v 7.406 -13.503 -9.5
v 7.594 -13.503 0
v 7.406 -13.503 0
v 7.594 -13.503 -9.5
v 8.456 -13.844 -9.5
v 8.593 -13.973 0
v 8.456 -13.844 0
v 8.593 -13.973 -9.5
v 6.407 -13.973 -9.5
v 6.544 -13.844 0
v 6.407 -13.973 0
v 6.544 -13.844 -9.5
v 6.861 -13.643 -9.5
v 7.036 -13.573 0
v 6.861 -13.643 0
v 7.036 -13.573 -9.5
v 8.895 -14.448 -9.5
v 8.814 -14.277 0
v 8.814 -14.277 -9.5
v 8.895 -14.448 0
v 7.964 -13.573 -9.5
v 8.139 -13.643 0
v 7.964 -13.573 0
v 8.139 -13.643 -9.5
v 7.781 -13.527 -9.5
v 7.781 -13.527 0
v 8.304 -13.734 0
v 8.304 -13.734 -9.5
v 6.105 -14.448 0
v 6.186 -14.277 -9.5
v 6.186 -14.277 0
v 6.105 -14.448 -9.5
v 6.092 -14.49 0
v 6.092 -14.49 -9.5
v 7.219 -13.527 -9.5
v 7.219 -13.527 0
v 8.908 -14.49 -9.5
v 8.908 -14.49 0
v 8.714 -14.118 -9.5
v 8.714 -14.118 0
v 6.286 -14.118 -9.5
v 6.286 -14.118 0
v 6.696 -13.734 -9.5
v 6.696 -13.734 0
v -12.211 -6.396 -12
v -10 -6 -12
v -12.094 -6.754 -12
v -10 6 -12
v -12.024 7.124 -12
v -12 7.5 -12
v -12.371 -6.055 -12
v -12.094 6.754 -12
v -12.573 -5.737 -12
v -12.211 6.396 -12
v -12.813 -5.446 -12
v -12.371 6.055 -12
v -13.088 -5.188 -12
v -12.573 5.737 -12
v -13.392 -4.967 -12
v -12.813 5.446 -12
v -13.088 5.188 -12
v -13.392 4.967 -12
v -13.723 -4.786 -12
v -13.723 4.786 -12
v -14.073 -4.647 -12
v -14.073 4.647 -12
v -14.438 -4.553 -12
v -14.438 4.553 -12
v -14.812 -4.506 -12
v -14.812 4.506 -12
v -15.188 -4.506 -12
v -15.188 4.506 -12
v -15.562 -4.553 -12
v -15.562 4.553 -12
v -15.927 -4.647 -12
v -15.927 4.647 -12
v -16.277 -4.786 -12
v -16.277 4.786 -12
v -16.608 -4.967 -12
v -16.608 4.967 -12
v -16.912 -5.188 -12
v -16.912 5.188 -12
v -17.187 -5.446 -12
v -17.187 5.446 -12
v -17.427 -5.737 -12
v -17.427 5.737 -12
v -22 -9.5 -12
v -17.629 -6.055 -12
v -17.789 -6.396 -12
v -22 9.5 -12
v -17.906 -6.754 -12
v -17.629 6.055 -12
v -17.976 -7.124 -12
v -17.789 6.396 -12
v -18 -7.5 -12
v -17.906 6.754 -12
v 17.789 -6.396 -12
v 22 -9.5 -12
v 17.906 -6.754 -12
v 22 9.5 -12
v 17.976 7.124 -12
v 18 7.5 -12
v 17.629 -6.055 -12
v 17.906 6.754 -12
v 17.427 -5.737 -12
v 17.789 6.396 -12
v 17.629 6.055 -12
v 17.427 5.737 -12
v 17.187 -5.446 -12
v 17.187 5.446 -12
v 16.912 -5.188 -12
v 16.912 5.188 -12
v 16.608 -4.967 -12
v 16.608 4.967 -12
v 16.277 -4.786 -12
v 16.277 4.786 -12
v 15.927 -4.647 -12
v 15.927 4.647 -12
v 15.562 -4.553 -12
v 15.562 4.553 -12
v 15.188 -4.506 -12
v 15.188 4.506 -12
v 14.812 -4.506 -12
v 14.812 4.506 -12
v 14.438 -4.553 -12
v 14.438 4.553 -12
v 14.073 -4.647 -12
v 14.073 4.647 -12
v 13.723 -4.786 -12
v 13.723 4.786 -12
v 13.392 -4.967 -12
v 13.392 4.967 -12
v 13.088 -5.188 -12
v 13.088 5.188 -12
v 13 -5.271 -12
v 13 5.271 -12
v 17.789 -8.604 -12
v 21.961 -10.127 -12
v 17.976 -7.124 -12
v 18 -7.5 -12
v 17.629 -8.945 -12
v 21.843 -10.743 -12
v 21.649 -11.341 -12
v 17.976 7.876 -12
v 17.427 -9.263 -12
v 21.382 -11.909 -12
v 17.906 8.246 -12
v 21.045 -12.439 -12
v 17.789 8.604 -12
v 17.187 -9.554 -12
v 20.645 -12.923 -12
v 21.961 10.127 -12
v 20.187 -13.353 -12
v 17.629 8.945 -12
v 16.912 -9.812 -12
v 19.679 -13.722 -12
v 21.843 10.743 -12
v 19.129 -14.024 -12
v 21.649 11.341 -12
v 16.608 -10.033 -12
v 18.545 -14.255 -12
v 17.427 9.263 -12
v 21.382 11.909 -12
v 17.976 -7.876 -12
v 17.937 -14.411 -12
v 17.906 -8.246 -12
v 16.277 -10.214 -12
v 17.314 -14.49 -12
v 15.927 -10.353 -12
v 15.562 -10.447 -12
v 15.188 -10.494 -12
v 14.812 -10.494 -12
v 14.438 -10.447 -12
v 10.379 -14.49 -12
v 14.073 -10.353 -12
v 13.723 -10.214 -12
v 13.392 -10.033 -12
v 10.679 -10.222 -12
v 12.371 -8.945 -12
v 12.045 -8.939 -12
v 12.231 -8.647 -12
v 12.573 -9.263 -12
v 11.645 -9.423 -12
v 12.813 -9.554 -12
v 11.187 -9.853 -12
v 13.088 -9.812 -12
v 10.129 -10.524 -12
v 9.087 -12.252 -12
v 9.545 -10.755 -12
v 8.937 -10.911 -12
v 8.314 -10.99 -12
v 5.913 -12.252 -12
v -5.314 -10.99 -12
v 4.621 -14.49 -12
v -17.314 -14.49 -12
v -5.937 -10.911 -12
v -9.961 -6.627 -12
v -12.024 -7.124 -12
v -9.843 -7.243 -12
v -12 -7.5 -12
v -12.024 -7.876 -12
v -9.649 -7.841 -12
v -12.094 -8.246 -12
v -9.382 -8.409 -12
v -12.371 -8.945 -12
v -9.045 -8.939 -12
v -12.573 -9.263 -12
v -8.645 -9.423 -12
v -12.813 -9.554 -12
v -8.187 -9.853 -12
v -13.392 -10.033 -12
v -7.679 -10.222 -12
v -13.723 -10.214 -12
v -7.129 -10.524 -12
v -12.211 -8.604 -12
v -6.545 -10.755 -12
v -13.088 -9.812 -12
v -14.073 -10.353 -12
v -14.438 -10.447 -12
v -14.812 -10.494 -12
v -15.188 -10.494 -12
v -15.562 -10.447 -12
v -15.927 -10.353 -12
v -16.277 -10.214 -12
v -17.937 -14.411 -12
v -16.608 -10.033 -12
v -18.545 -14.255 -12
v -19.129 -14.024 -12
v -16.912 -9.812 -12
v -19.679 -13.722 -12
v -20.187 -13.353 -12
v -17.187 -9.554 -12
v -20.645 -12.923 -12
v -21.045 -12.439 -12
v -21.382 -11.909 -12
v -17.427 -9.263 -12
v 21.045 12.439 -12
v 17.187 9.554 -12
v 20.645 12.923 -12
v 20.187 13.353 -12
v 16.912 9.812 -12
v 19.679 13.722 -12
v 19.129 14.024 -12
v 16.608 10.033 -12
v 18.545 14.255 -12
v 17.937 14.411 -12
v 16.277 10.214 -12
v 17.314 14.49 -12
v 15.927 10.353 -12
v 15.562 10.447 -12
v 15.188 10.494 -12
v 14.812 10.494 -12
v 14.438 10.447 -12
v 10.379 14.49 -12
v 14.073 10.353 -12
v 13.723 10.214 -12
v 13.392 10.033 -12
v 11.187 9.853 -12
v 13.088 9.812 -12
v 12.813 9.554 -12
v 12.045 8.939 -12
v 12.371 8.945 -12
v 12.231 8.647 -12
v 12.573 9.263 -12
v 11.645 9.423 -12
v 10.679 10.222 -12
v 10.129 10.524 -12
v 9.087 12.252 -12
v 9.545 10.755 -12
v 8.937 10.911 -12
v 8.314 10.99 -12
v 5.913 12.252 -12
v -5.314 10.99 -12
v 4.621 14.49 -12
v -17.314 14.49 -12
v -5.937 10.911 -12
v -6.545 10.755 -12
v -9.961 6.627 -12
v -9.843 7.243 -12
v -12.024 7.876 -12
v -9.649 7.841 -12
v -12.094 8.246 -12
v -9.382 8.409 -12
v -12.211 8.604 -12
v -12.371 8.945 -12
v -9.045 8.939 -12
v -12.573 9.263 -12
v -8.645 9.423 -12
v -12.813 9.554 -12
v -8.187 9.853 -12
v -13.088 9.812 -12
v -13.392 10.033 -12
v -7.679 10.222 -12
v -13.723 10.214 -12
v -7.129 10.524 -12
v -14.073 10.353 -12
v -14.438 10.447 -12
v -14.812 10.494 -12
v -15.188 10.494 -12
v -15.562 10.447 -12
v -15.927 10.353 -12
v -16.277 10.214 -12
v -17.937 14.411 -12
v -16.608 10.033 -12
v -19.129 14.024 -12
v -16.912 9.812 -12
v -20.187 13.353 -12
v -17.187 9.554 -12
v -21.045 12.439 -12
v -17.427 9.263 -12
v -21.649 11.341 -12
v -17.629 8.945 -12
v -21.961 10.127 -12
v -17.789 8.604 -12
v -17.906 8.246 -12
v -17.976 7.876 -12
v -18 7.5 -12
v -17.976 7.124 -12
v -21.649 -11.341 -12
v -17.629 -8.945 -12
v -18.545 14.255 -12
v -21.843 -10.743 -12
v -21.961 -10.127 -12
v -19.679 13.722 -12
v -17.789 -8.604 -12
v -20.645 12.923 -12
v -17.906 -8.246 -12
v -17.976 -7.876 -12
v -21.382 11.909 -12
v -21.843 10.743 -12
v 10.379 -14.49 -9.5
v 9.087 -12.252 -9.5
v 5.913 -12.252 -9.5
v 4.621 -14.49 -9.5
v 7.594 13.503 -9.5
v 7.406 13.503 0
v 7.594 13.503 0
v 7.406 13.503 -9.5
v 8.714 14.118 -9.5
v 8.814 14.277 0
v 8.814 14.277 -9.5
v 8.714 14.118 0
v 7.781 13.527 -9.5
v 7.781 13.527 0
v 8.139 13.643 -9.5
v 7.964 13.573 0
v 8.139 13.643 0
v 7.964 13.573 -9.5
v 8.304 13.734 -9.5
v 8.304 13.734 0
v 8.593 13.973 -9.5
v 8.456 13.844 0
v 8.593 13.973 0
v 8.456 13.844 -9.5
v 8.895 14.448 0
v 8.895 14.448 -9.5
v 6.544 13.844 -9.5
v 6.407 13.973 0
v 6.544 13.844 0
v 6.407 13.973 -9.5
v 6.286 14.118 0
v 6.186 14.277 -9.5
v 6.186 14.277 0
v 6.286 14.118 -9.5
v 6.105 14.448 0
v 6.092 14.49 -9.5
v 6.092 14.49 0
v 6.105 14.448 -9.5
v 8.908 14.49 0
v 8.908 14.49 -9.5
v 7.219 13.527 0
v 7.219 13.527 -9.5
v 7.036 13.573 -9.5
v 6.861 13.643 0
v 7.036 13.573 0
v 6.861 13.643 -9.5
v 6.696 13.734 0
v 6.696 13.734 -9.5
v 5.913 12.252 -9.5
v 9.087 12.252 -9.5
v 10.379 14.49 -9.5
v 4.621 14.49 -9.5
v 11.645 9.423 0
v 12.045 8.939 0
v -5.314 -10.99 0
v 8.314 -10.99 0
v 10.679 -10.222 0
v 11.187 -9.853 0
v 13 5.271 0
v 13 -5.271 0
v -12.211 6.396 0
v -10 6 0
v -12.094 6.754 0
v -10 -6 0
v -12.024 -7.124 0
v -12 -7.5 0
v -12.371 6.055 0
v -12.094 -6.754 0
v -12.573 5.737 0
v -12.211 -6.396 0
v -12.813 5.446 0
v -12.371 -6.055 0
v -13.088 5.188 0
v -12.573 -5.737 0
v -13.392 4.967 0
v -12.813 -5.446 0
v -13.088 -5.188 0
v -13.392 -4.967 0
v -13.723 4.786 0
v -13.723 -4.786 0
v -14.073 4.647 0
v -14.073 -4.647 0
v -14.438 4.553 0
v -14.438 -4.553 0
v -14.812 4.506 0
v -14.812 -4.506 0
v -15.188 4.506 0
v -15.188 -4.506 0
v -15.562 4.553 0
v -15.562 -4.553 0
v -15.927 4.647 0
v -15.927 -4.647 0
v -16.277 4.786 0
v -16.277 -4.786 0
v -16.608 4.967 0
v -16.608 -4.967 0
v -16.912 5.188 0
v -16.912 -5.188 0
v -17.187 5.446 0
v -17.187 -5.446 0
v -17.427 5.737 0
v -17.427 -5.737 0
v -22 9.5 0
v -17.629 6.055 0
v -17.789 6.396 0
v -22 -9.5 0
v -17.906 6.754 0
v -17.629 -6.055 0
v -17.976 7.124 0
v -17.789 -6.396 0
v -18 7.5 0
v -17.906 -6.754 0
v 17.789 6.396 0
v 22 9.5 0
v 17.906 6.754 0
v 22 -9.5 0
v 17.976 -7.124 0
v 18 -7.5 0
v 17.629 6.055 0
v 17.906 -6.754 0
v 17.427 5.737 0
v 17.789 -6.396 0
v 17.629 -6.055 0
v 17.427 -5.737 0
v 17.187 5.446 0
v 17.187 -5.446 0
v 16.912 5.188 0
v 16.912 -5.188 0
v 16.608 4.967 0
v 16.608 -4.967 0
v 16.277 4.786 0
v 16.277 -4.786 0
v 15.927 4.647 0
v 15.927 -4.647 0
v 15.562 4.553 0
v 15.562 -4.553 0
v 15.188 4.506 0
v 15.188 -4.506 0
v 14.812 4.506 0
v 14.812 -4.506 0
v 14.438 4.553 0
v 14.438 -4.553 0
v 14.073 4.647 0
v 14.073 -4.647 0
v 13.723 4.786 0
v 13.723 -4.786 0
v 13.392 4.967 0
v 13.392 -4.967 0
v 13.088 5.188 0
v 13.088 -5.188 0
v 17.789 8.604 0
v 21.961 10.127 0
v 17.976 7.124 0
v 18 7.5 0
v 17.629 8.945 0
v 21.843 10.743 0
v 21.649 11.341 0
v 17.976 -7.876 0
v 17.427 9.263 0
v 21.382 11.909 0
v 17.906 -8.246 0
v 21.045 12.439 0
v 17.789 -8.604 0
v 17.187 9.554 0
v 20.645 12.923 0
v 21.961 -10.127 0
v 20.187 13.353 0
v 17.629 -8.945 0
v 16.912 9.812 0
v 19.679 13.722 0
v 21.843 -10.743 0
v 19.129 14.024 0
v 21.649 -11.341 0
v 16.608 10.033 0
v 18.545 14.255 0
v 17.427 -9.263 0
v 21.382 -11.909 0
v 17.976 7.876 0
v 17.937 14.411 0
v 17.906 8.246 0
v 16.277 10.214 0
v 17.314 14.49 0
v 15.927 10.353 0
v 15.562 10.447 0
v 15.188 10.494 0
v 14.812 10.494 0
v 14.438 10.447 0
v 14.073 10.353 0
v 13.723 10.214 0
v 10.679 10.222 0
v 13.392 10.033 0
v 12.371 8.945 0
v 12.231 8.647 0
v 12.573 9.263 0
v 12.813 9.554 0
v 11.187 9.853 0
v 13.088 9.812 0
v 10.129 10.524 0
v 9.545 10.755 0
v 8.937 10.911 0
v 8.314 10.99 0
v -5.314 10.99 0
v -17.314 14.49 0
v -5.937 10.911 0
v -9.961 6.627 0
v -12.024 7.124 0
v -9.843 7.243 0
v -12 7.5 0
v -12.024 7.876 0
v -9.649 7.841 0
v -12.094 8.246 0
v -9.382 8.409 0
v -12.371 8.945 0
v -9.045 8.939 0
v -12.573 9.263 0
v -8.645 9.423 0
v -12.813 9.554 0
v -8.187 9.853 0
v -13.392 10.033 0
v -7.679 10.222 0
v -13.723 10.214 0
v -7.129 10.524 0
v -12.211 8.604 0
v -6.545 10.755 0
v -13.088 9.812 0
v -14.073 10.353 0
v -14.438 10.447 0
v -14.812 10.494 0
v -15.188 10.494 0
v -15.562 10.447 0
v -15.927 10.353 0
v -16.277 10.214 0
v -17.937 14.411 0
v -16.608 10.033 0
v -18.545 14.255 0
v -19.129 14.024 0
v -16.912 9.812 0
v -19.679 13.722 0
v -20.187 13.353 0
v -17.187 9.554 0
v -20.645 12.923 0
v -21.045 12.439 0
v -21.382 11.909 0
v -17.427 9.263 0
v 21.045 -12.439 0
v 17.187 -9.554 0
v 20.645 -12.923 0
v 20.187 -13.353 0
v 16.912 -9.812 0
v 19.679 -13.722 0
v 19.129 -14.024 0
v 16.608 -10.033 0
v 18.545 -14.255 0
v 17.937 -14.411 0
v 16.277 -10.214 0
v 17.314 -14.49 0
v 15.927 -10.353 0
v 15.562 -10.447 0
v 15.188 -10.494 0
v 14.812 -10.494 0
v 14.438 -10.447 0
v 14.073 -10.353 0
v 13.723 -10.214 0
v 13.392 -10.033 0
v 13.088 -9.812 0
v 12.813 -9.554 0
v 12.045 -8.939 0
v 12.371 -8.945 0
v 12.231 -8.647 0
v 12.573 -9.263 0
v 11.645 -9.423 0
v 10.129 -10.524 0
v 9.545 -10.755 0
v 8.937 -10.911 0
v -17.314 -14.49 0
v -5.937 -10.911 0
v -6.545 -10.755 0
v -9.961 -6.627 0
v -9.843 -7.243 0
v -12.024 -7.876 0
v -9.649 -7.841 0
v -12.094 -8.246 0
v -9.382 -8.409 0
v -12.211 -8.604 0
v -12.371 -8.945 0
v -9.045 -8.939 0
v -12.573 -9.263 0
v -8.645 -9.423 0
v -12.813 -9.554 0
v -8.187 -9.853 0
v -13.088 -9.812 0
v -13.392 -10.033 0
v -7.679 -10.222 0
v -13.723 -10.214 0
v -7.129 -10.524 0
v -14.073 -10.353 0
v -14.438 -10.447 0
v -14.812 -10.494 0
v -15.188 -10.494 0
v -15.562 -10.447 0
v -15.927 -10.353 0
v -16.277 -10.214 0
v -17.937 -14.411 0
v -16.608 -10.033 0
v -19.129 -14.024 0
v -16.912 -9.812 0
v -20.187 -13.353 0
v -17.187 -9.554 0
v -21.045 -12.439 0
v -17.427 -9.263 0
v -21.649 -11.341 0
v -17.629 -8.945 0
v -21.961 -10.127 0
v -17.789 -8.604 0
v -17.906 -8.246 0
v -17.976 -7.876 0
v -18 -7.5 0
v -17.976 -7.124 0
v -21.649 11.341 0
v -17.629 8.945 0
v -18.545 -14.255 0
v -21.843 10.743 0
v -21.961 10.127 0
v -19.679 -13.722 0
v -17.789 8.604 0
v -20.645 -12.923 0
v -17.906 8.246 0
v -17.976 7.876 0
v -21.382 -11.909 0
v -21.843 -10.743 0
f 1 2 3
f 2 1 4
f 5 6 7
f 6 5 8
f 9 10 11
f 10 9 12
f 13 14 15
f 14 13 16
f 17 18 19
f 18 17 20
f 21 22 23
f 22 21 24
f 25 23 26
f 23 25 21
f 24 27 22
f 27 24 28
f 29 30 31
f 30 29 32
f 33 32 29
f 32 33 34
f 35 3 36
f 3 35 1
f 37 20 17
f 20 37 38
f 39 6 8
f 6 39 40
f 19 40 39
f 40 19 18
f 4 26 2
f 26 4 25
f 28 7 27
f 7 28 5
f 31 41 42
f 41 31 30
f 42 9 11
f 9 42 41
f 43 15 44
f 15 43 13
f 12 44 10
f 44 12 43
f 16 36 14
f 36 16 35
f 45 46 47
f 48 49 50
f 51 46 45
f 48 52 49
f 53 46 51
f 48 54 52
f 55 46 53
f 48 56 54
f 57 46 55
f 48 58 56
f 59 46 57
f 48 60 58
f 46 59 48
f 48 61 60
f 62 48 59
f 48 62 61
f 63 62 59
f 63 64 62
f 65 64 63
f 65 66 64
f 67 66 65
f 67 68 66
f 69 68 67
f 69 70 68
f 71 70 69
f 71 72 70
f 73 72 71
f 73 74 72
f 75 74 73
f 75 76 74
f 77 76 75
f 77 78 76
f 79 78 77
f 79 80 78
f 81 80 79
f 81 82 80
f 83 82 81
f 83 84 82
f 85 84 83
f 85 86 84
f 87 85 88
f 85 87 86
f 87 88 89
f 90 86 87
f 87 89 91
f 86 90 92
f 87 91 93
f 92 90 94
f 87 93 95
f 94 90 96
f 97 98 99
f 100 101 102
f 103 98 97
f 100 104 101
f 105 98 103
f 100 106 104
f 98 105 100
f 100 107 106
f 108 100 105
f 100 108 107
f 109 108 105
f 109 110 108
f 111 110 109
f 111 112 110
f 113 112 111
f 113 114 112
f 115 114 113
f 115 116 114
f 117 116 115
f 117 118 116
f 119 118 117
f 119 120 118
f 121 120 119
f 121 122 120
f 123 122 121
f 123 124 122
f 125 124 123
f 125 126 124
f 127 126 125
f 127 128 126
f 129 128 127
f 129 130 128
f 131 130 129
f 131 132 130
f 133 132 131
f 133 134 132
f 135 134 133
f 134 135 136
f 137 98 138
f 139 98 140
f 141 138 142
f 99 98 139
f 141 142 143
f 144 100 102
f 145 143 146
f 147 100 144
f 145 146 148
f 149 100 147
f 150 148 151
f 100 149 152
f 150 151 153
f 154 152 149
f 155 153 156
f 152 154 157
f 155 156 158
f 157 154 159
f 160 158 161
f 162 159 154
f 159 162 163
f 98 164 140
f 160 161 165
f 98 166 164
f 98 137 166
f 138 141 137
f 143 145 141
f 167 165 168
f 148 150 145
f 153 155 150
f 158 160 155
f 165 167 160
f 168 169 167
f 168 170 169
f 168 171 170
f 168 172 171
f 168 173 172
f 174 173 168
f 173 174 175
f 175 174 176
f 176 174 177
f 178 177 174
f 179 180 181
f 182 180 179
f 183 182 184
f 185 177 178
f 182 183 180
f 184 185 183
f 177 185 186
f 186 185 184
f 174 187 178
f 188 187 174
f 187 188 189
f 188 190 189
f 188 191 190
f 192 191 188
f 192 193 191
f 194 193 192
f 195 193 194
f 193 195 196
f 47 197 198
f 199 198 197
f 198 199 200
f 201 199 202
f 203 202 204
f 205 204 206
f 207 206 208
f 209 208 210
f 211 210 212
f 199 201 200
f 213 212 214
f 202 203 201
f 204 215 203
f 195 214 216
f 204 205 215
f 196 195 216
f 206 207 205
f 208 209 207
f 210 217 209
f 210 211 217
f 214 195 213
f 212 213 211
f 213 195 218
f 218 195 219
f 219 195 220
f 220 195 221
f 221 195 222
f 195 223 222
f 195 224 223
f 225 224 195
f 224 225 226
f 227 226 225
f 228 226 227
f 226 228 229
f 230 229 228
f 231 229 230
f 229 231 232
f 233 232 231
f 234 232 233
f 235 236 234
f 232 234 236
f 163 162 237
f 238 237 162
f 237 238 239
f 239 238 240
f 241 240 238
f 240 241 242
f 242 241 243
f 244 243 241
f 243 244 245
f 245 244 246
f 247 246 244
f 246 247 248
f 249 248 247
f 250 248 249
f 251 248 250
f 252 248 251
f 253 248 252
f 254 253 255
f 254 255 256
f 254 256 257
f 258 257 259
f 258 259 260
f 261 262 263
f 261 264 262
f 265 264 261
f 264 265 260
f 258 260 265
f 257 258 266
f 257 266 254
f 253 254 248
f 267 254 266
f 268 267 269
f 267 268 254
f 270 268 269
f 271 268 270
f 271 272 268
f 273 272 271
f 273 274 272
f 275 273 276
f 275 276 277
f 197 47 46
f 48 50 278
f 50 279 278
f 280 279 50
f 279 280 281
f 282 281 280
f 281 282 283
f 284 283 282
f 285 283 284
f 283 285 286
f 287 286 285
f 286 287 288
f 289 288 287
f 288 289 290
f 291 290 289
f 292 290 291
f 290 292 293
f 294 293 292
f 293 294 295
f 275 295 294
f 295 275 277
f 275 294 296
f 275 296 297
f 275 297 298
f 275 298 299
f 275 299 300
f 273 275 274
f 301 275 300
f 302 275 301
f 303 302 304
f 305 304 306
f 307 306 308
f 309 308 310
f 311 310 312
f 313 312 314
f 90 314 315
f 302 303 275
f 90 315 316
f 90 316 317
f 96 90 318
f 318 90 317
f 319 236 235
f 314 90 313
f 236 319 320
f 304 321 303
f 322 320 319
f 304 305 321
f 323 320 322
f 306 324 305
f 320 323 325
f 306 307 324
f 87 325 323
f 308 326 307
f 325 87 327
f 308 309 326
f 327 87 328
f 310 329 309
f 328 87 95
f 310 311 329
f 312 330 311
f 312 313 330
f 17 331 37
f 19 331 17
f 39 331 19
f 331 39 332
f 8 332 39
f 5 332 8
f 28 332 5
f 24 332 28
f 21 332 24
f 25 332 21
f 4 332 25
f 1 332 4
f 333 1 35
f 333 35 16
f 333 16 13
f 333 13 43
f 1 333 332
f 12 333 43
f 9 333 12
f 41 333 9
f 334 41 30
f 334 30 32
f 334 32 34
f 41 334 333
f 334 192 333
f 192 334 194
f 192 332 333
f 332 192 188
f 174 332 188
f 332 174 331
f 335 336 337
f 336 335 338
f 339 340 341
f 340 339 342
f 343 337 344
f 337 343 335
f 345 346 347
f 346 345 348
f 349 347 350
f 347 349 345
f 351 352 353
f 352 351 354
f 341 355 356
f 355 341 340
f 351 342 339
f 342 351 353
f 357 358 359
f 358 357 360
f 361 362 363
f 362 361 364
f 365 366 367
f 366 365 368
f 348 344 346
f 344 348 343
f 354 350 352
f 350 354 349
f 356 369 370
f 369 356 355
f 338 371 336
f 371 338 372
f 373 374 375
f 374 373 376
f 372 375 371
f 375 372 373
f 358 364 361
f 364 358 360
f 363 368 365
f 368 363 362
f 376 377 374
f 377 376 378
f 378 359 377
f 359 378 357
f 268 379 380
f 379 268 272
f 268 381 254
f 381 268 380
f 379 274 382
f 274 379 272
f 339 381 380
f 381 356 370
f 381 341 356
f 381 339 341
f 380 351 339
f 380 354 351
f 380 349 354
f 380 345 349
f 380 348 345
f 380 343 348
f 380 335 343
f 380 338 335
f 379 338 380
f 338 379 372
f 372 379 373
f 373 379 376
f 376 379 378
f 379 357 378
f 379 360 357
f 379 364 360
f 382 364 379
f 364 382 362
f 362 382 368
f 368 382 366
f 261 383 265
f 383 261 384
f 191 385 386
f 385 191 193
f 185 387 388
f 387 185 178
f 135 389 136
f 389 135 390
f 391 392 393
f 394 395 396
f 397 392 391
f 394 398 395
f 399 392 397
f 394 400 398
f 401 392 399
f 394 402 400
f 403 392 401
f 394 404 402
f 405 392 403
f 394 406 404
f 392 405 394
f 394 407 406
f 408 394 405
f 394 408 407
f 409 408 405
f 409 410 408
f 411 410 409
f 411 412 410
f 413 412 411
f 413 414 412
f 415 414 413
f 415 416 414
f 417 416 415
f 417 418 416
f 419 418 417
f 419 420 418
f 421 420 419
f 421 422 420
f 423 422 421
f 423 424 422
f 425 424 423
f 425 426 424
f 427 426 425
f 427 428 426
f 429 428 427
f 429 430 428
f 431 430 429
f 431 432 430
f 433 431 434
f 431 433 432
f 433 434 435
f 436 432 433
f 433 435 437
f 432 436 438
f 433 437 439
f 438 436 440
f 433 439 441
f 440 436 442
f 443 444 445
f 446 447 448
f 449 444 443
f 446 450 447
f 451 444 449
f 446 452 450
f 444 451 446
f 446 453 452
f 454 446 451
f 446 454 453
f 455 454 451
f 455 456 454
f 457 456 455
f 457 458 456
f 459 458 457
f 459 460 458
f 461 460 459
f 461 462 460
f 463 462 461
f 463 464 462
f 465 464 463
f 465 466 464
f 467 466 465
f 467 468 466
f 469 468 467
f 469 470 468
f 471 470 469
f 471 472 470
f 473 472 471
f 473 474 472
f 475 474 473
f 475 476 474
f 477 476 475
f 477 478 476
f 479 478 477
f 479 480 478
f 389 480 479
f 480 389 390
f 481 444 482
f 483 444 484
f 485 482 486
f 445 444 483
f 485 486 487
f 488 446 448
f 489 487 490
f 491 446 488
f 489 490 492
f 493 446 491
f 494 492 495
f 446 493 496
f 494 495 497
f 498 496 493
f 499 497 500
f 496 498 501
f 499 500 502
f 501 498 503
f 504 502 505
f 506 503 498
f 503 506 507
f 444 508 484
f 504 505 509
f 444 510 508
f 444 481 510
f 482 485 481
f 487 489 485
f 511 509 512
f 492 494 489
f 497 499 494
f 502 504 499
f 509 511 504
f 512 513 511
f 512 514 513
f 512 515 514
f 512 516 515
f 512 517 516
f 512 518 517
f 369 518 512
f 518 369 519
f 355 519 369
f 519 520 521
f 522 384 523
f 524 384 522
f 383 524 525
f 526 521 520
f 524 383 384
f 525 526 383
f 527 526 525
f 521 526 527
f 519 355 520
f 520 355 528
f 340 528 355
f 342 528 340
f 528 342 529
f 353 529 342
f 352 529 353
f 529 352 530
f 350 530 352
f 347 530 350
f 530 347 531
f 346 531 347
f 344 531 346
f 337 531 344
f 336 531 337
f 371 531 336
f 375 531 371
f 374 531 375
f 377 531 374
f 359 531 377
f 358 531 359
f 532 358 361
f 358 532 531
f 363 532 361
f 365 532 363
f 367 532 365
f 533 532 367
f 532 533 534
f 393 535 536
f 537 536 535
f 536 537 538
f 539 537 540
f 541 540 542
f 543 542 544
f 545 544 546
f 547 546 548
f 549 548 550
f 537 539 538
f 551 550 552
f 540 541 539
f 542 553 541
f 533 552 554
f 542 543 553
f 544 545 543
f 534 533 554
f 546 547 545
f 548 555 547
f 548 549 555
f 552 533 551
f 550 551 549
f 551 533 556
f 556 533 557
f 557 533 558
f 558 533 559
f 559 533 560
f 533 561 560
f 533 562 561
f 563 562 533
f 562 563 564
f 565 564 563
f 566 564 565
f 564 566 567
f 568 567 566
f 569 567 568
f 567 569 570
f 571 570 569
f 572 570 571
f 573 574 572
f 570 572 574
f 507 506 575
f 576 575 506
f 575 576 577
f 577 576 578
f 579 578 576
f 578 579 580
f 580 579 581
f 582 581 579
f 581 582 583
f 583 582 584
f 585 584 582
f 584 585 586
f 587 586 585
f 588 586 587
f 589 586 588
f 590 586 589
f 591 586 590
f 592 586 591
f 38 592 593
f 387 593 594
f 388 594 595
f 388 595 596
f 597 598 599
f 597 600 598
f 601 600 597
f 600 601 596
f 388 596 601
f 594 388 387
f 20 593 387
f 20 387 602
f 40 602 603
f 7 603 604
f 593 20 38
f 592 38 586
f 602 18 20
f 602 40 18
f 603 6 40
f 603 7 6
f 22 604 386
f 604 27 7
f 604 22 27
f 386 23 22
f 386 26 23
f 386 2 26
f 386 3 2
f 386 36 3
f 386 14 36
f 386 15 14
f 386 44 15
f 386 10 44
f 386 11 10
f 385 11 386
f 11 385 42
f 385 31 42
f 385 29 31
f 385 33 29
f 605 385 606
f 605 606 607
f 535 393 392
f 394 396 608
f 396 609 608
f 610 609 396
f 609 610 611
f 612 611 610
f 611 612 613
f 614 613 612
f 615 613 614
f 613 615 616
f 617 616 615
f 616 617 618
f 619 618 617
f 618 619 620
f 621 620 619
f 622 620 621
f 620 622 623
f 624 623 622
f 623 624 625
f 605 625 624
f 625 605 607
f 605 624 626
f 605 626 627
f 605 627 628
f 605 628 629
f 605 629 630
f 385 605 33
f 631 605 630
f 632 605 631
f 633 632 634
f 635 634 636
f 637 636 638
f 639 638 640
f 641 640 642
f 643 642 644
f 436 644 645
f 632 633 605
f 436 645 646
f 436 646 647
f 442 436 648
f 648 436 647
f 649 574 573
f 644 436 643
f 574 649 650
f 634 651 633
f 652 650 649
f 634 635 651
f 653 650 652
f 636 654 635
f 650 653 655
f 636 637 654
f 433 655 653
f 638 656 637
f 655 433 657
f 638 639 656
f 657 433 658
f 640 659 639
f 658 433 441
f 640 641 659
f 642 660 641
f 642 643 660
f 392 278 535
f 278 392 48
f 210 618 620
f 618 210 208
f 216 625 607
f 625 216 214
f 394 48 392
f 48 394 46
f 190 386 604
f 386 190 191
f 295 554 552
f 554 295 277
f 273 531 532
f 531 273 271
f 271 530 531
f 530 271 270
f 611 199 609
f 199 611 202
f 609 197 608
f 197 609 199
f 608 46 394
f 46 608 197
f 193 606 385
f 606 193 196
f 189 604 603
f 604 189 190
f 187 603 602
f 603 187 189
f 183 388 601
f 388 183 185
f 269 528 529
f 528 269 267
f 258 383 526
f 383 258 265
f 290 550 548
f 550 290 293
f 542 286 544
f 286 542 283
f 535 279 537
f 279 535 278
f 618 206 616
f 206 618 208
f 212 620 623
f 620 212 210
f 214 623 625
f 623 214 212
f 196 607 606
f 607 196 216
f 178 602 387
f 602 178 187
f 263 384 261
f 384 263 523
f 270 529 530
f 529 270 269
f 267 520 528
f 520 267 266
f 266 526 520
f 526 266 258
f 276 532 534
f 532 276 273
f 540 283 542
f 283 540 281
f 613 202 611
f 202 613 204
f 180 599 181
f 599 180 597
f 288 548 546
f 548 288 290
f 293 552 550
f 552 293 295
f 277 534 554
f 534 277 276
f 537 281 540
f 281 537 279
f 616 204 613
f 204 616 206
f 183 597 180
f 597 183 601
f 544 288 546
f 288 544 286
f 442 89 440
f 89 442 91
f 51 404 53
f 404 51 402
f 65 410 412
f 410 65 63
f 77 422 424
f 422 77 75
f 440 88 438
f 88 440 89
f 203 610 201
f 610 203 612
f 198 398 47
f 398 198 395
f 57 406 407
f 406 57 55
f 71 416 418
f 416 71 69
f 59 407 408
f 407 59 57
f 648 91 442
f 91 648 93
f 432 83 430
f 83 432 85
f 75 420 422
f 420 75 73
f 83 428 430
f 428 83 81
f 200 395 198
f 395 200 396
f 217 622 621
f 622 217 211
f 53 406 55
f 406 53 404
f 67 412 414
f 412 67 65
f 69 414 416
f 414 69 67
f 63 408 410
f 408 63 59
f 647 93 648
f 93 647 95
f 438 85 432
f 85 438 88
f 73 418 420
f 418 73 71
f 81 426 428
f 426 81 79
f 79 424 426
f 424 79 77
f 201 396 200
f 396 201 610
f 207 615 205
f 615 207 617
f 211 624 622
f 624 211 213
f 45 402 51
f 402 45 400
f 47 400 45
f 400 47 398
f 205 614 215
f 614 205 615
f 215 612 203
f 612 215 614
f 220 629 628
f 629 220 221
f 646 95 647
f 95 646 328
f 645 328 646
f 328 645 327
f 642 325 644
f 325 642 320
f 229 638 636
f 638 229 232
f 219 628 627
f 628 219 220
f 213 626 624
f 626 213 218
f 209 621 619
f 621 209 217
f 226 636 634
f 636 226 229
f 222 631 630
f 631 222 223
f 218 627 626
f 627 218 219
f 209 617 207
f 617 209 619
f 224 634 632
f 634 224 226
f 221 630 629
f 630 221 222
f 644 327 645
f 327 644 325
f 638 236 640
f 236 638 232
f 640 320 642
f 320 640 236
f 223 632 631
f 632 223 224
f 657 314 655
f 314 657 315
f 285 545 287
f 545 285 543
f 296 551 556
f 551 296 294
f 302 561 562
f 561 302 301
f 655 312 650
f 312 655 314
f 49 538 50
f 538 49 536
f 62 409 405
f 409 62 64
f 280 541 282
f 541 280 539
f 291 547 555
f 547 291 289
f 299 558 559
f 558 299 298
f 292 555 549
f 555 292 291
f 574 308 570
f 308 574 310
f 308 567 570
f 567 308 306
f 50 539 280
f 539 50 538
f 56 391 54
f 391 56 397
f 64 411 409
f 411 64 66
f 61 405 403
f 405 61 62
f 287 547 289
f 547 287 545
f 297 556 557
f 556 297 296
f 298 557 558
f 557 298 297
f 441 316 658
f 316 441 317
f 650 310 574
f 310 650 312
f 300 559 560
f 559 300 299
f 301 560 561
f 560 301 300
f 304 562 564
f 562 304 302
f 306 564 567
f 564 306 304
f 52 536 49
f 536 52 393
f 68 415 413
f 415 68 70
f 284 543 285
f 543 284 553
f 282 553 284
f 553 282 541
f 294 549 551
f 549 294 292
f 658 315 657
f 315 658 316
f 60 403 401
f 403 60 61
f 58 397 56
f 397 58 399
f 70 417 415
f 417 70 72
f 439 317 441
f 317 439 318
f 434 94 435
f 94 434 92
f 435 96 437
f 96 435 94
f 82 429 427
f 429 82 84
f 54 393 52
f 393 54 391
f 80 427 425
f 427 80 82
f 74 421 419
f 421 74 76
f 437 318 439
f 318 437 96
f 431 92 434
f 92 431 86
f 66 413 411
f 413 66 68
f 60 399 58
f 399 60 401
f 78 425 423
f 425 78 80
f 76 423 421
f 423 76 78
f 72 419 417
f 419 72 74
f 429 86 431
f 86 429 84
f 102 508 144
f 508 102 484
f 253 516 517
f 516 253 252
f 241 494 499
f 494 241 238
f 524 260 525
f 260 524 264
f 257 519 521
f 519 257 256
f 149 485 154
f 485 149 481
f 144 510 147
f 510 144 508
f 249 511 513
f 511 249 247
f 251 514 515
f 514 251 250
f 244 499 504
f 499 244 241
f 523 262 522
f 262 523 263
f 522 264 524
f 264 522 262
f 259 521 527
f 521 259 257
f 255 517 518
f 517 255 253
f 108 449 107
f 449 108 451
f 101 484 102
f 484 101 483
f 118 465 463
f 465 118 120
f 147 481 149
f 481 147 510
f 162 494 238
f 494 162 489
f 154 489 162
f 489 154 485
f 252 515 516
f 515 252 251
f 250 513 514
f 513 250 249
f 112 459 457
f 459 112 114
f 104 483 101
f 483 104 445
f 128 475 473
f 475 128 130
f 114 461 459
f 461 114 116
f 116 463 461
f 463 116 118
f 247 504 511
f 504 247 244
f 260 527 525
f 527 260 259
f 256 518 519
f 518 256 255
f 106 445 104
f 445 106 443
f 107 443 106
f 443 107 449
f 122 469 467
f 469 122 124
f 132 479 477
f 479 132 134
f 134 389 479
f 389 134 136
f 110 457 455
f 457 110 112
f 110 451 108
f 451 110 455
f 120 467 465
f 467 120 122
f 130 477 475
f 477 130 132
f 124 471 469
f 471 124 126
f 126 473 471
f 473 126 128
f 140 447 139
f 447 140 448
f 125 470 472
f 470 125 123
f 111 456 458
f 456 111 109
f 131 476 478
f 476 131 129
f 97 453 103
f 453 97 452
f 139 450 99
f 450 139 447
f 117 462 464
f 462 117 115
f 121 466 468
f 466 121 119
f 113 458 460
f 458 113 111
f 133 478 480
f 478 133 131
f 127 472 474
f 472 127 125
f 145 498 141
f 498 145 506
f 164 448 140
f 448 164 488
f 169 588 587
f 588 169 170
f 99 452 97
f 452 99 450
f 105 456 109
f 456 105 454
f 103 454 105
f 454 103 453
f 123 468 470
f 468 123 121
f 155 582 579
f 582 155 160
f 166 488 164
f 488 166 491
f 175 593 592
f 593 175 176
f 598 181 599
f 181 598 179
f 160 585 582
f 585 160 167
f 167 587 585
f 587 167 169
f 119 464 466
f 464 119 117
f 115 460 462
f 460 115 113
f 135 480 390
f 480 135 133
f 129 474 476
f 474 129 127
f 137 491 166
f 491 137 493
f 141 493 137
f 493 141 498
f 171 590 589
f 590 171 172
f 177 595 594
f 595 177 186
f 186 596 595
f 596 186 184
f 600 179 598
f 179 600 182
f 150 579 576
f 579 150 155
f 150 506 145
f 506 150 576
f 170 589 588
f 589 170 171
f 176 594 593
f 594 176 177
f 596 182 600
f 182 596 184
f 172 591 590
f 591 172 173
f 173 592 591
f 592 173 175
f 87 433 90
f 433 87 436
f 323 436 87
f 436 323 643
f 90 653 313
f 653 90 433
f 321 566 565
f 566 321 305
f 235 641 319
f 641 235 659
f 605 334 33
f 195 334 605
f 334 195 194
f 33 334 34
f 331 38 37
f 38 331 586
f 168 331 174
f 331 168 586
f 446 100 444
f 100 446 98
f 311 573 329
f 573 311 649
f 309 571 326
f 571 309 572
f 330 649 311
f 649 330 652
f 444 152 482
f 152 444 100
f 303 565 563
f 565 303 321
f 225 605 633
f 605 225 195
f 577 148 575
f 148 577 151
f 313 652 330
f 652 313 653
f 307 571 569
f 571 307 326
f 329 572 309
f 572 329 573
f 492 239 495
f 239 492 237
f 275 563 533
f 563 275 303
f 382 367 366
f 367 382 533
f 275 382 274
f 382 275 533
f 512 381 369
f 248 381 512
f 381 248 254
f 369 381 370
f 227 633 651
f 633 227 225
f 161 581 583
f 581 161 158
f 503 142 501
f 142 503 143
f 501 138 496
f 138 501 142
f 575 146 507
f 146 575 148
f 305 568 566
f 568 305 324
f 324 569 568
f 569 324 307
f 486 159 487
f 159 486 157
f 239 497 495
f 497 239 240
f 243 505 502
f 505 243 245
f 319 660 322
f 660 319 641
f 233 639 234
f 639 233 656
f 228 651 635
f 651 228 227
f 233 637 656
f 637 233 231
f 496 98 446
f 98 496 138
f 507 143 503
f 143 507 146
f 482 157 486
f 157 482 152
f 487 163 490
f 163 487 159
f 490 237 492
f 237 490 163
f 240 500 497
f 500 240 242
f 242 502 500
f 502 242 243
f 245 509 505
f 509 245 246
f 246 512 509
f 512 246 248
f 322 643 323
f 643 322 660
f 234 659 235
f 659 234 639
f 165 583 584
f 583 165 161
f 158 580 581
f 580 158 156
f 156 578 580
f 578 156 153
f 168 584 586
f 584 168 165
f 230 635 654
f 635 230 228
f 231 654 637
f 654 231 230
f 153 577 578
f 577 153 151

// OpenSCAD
$fn = 50;


difference() {
	union() {
		translate(v = [0, 0, -12]) {
			hull() {
				translate(v = [-17.0000000000, 9.5000000000, 0]) {
					cylinder(h = 12, r = 5);
				}
				translate(v = [17.0000000000, 9.5000000000, 0]) {
					cylinder(h = 12, r = 5);
				}
				translate(v = [-17.0000000000, -9.5000000000, 0]) {
					cylinder(h = 12, r = 5);
				}
				translate(v = [17.0000000000, -9.5000000000, 0]) {
					cylinder(h = 12, r = 5);
				}
			}
		}
	}
	union() {
		translate(v = [7.5000000000, -15, -12]) {
			rotate(a = [0, 0, 0]) {
				difference() {
					union() {
						translate(v = [0, 0, -50.0000000000]) {
							cylinder(h = 100, r = 1.5000000000);
						}
						translate(v = [0, 0, -50.0000000000]) {
							cylinder(h = 100, r = 1.5000000000);
						}
						linear_extrude(height = 2.5000000000) {
							polygon(points = [[3.1735000000, 0.0000000000], [1.5867500000, 2.7483316189], [-1.5867500000, 2.7483316189], [-3.1735000000, 0.0000000000], [-1.5867500000, -2.7483316189], [1.5867500000, -2.7483316189]]);
						}
						translate(v = [0, 0, -50.0000000000]) {
							cylinder(h = 100, r = 1.5000000000);
						}
					}
					union();
				}
			}
		}
		translate(v = [7.5000000000, 15, -12]) {
			rotate(a = [0, 0, 0]) {
				difference() {
					union() {
						translate(v = [0, 0, -50.0000000000]) {
							cylinder(h = 100, r = 1.5000000000);
						}
						translate(v = [0, 0, -50.0000000000]) {
							cylinder(h = 100, r = 1.5000000000);
						}
						linear_extrude(height = 2.5000000000) {
							polygon(points = [[3.1735000000, 0.0000000000], [1.5867500000, 2.7483316189], [-1.5867500000, 2.7483316189], [-3.1735000000, 0.0000000000], [-1.5867500000, -2.7483316189], [1.5867500000, -2.7483316189]]);
						}
						translate(v = [0, 0, -50.0000000000]) {
							cylinder(h = 100, r = 1.5000000000);
						}
					}
					union();
				}
			}
		}
		translate(v = [0, 0, -3]) {
			rotate(a = [0, 0, 180]) {
				difference() {
					union() {
						translate(v = [-1.5000000000, 0, -9]) {
							#hull() {
								translate(v = [-6.5000000000, 6.0000000000, 0]) {
									cylinder(h = 12, r = 5);
								}
								translate(v = [6.5000000000, 6.0000000000, 0]) {
									cylinder(h = 12, r = 5);
								}
								translate(v = [-6.5000000000, -6.0000000000, 0]) {
									cylinder(h = 12, r = 5);
								}
								translate(v = [6.5000000000, -6.0000000000, 0]) {
									cylinder(h = 12, r = 5);
								}
							}
						}
					}
					union();
				}
			}
		}
		translate(v = [-15.0000000000, -7.5000000000, -50.0000000000]) {
			cylinder(h = 100, r = 3.0000000000);
		}
		translate(v = [-15.0000000000, 7.5000000000, -50.0000000000]) {
			cylinder(h = 100, r = 3.0000000000);
		}
		translate(v = [-15.0000000000, 7.5000000000, -50.0000000000]) {
			cylinder(h = 100, r = 3.0000000000);
		}
		translate(v = [0.0000000000, 7.5000000000, -50.0000000000]) {
			cylinder(h = 100, r = 3.0000000000);
		}
		translate(v = [15.0000000000, 7.5000000000, -50.0000000000]) {
			cylinder(h = 100, r = 3.0000000000);
		}
		translate(v = [-15.0000000000, -7.5000000000, -50.0000000000]) {
			cylinder(h = 100, r = 3.0000000000);
		}
		translate(v = [0.0000000000, -7.5000000000, -50.0000000000]) {
			cylinder(h = 100, r = 3.0000000000);
		}
		translate(v = [15.0000000000, -7.5000000000, -50.0000000000]) {
			cylinder(h = 100, r = 3.0000000000);
		}
	}
}
